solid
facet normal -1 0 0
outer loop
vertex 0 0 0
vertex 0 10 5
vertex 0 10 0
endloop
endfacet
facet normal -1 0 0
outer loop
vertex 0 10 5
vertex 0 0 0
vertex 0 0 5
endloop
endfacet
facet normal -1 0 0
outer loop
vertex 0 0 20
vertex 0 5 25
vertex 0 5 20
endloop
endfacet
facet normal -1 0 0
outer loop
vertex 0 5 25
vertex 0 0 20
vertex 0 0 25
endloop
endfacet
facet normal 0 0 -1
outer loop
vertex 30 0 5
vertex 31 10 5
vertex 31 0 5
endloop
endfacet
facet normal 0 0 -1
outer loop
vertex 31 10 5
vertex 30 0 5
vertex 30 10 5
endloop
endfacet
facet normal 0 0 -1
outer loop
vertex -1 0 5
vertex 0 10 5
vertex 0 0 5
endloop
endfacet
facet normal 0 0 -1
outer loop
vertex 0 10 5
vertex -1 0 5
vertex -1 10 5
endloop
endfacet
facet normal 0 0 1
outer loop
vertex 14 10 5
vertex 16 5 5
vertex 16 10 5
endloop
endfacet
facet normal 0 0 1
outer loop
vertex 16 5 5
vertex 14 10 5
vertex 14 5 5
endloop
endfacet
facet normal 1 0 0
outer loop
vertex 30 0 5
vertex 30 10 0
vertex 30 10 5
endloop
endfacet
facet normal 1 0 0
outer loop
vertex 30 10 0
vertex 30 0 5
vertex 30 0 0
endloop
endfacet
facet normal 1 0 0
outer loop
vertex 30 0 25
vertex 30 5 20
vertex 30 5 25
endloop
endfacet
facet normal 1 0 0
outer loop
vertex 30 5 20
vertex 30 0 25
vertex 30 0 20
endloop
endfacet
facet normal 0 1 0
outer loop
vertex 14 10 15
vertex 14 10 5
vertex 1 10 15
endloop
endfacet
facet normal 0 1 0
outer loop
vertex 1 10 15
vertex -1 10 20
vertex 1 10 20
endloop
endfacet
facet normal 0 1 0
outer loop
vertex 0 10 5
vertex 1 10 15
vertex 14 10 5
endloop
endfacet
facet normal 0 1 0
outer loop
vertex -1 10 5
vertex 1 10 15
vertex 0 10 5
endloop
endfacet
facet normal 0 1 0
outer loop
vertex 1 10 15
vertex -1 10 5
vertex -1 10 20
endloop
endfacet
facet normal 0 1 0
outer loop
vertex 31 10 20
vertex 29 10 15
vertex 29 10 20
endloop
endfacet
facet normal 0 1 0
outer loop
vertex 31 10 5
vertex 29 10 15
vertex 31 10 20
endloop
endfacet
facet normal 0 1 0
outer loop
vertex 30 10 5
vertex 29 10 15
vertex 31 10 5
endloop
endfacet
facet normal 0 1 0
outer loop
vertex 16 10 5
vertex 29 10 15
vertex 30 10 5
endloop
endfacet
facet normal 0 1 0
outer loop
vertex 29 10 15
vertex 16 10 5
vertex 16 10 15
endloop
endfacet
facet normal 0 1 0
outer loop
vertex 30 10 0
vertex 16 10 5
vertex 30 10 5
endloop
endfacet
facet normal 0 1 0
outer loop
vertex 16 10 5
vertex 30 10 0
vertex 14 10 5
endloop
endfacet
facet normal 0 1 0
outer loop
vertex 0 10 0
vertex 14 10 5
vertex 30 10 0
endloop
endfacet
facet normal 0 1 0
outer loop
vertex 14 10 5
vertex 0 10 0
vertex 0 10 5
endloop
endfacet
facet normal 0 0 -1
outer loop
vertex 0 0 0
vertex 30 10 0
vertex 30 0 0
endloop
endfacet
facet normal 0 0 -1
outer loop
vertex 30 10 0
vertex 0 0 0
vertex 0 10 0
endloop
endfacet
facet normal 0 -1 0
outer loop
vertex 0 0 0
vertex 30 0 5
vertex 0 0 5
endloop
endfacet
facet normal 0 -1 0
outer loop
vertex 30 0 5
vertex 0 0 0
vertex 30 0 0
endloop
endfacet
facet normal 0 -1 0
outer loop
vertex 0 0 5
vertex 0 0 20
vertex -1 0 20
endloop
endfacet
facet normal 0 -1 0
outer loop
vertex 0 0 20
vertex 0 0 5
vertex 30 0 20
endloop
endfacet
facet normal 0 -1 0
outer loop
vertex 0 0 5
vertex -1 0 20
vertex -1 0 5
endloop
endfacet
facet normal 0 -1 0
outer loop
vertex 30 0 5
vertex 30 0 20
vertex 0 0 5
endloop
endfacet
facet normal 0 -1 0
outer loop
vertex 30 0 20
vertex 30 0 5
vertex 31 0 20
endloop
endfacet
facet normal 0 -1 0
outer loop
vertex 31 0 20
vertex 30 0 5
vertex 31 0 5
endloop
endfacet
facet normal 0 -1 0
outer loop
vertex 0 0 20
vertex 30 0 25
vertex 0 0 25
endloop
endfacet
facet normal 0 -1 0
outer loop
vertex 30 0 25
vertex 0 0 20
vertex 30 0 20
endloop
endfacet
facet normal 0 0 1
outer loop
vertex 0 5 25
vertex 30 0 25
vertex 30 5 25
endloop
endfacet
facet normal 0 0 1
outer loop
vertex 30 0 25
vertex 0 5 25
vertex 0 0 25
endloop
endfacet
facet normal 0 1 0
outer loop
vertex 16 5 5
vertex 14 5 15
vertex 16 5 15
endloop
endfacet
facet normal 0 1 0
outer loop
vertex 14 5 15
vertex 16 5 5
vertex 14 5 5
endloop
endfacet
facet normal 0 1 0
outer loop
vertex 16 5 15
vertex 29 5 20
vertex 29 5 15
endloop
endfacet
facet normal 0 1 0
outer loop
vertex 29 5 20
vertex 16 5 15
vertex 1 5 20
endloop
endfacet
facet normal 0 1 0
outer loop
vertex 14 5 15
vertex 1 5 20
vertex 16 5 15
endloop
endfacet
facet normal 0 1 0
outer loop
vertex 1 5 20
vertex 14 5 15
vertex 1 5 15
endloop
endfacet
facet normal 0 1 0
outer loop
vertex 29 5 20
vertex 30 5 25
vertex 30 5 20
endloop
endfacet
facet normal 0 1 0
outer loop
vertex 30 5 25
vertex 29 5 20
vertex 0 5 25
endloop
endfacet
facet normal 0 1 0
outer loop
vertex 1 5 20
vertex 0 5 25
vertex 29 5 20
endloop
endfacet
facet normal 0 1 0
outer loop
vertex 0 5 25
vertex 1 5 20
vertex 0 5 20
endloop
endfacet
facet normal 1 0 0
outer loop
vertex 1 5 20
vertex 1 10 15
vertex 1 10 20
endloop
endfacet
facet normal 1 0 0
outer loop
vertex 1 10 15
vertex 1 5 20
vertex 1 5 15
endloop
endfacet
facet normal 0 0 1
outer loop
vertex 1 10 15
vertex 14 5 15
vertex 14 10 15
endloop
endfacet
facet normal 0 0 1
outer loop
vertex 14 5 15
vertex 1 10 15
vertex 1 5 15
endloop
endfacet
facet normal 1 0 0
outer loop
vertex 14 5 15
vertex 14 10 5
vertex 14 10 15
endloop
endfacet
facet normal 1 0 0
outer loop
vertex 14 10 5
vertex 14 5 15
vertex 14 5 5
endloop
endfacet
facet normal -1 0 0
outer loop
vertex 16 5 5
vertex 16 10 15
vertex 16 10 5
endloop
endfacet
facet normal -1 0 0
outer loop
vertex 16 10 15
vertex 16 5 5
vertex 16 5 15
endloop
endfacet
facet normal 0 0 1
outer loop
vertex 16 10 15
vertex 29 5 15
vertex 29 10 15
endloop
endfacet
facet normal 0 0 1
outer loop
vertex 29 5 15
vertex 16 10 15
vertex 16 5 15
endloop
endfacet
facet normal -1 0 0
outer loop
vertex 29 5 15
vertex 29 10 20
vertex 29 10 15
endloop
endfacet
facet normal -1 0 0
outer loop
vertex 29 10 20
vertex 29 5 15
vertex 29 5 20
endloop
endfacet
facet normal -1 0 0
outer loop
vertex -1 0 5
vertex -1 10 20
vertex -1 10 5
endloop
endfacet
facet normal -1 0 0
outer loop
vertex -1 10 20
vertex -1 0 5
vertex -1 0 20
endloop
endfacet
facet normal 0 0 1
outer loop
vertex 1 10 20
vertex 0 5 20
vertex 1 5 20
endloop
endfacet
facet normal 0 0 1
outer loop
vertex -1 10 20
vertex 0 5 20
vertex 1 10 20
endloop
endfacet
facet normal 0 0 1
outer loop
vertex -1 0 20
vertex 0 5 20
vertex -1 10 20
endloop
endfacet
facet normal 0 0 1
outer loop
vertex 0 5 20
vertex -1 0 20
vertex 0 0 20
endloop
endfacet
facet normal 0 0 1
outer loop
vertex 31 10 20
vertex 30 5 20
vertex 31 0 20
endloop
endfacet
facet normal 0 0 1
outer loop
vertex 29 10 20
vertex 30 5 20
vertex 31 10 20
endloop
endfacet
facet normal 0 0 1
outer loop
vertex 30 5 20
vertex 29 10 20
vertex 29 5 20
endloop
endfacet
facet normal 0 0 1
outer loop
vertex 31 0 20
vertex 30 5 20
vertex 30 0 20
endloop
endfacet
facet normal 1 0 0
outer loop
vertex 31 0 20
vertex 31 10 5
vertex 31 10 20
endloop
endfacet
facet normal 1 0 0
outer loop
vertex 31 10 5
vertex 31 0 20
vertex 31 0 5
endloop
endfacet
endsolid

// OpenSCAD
// Couch Base
cube([30, 10, 5]);

// Couch Back
translate([0, 0, 5])
cube([30, 5, 20]);

// Couch Seat Cushions
translate([1, 5, 5])
cube([13, 5, 10]);
translate([16, 5, 5])
cube([13, 5, 10]);

// Couch Arms
translate([-1, 0, 5])
cube([2, 10, 15]);
translate([29, 0, 5])
cube([2, 10, 15]);
